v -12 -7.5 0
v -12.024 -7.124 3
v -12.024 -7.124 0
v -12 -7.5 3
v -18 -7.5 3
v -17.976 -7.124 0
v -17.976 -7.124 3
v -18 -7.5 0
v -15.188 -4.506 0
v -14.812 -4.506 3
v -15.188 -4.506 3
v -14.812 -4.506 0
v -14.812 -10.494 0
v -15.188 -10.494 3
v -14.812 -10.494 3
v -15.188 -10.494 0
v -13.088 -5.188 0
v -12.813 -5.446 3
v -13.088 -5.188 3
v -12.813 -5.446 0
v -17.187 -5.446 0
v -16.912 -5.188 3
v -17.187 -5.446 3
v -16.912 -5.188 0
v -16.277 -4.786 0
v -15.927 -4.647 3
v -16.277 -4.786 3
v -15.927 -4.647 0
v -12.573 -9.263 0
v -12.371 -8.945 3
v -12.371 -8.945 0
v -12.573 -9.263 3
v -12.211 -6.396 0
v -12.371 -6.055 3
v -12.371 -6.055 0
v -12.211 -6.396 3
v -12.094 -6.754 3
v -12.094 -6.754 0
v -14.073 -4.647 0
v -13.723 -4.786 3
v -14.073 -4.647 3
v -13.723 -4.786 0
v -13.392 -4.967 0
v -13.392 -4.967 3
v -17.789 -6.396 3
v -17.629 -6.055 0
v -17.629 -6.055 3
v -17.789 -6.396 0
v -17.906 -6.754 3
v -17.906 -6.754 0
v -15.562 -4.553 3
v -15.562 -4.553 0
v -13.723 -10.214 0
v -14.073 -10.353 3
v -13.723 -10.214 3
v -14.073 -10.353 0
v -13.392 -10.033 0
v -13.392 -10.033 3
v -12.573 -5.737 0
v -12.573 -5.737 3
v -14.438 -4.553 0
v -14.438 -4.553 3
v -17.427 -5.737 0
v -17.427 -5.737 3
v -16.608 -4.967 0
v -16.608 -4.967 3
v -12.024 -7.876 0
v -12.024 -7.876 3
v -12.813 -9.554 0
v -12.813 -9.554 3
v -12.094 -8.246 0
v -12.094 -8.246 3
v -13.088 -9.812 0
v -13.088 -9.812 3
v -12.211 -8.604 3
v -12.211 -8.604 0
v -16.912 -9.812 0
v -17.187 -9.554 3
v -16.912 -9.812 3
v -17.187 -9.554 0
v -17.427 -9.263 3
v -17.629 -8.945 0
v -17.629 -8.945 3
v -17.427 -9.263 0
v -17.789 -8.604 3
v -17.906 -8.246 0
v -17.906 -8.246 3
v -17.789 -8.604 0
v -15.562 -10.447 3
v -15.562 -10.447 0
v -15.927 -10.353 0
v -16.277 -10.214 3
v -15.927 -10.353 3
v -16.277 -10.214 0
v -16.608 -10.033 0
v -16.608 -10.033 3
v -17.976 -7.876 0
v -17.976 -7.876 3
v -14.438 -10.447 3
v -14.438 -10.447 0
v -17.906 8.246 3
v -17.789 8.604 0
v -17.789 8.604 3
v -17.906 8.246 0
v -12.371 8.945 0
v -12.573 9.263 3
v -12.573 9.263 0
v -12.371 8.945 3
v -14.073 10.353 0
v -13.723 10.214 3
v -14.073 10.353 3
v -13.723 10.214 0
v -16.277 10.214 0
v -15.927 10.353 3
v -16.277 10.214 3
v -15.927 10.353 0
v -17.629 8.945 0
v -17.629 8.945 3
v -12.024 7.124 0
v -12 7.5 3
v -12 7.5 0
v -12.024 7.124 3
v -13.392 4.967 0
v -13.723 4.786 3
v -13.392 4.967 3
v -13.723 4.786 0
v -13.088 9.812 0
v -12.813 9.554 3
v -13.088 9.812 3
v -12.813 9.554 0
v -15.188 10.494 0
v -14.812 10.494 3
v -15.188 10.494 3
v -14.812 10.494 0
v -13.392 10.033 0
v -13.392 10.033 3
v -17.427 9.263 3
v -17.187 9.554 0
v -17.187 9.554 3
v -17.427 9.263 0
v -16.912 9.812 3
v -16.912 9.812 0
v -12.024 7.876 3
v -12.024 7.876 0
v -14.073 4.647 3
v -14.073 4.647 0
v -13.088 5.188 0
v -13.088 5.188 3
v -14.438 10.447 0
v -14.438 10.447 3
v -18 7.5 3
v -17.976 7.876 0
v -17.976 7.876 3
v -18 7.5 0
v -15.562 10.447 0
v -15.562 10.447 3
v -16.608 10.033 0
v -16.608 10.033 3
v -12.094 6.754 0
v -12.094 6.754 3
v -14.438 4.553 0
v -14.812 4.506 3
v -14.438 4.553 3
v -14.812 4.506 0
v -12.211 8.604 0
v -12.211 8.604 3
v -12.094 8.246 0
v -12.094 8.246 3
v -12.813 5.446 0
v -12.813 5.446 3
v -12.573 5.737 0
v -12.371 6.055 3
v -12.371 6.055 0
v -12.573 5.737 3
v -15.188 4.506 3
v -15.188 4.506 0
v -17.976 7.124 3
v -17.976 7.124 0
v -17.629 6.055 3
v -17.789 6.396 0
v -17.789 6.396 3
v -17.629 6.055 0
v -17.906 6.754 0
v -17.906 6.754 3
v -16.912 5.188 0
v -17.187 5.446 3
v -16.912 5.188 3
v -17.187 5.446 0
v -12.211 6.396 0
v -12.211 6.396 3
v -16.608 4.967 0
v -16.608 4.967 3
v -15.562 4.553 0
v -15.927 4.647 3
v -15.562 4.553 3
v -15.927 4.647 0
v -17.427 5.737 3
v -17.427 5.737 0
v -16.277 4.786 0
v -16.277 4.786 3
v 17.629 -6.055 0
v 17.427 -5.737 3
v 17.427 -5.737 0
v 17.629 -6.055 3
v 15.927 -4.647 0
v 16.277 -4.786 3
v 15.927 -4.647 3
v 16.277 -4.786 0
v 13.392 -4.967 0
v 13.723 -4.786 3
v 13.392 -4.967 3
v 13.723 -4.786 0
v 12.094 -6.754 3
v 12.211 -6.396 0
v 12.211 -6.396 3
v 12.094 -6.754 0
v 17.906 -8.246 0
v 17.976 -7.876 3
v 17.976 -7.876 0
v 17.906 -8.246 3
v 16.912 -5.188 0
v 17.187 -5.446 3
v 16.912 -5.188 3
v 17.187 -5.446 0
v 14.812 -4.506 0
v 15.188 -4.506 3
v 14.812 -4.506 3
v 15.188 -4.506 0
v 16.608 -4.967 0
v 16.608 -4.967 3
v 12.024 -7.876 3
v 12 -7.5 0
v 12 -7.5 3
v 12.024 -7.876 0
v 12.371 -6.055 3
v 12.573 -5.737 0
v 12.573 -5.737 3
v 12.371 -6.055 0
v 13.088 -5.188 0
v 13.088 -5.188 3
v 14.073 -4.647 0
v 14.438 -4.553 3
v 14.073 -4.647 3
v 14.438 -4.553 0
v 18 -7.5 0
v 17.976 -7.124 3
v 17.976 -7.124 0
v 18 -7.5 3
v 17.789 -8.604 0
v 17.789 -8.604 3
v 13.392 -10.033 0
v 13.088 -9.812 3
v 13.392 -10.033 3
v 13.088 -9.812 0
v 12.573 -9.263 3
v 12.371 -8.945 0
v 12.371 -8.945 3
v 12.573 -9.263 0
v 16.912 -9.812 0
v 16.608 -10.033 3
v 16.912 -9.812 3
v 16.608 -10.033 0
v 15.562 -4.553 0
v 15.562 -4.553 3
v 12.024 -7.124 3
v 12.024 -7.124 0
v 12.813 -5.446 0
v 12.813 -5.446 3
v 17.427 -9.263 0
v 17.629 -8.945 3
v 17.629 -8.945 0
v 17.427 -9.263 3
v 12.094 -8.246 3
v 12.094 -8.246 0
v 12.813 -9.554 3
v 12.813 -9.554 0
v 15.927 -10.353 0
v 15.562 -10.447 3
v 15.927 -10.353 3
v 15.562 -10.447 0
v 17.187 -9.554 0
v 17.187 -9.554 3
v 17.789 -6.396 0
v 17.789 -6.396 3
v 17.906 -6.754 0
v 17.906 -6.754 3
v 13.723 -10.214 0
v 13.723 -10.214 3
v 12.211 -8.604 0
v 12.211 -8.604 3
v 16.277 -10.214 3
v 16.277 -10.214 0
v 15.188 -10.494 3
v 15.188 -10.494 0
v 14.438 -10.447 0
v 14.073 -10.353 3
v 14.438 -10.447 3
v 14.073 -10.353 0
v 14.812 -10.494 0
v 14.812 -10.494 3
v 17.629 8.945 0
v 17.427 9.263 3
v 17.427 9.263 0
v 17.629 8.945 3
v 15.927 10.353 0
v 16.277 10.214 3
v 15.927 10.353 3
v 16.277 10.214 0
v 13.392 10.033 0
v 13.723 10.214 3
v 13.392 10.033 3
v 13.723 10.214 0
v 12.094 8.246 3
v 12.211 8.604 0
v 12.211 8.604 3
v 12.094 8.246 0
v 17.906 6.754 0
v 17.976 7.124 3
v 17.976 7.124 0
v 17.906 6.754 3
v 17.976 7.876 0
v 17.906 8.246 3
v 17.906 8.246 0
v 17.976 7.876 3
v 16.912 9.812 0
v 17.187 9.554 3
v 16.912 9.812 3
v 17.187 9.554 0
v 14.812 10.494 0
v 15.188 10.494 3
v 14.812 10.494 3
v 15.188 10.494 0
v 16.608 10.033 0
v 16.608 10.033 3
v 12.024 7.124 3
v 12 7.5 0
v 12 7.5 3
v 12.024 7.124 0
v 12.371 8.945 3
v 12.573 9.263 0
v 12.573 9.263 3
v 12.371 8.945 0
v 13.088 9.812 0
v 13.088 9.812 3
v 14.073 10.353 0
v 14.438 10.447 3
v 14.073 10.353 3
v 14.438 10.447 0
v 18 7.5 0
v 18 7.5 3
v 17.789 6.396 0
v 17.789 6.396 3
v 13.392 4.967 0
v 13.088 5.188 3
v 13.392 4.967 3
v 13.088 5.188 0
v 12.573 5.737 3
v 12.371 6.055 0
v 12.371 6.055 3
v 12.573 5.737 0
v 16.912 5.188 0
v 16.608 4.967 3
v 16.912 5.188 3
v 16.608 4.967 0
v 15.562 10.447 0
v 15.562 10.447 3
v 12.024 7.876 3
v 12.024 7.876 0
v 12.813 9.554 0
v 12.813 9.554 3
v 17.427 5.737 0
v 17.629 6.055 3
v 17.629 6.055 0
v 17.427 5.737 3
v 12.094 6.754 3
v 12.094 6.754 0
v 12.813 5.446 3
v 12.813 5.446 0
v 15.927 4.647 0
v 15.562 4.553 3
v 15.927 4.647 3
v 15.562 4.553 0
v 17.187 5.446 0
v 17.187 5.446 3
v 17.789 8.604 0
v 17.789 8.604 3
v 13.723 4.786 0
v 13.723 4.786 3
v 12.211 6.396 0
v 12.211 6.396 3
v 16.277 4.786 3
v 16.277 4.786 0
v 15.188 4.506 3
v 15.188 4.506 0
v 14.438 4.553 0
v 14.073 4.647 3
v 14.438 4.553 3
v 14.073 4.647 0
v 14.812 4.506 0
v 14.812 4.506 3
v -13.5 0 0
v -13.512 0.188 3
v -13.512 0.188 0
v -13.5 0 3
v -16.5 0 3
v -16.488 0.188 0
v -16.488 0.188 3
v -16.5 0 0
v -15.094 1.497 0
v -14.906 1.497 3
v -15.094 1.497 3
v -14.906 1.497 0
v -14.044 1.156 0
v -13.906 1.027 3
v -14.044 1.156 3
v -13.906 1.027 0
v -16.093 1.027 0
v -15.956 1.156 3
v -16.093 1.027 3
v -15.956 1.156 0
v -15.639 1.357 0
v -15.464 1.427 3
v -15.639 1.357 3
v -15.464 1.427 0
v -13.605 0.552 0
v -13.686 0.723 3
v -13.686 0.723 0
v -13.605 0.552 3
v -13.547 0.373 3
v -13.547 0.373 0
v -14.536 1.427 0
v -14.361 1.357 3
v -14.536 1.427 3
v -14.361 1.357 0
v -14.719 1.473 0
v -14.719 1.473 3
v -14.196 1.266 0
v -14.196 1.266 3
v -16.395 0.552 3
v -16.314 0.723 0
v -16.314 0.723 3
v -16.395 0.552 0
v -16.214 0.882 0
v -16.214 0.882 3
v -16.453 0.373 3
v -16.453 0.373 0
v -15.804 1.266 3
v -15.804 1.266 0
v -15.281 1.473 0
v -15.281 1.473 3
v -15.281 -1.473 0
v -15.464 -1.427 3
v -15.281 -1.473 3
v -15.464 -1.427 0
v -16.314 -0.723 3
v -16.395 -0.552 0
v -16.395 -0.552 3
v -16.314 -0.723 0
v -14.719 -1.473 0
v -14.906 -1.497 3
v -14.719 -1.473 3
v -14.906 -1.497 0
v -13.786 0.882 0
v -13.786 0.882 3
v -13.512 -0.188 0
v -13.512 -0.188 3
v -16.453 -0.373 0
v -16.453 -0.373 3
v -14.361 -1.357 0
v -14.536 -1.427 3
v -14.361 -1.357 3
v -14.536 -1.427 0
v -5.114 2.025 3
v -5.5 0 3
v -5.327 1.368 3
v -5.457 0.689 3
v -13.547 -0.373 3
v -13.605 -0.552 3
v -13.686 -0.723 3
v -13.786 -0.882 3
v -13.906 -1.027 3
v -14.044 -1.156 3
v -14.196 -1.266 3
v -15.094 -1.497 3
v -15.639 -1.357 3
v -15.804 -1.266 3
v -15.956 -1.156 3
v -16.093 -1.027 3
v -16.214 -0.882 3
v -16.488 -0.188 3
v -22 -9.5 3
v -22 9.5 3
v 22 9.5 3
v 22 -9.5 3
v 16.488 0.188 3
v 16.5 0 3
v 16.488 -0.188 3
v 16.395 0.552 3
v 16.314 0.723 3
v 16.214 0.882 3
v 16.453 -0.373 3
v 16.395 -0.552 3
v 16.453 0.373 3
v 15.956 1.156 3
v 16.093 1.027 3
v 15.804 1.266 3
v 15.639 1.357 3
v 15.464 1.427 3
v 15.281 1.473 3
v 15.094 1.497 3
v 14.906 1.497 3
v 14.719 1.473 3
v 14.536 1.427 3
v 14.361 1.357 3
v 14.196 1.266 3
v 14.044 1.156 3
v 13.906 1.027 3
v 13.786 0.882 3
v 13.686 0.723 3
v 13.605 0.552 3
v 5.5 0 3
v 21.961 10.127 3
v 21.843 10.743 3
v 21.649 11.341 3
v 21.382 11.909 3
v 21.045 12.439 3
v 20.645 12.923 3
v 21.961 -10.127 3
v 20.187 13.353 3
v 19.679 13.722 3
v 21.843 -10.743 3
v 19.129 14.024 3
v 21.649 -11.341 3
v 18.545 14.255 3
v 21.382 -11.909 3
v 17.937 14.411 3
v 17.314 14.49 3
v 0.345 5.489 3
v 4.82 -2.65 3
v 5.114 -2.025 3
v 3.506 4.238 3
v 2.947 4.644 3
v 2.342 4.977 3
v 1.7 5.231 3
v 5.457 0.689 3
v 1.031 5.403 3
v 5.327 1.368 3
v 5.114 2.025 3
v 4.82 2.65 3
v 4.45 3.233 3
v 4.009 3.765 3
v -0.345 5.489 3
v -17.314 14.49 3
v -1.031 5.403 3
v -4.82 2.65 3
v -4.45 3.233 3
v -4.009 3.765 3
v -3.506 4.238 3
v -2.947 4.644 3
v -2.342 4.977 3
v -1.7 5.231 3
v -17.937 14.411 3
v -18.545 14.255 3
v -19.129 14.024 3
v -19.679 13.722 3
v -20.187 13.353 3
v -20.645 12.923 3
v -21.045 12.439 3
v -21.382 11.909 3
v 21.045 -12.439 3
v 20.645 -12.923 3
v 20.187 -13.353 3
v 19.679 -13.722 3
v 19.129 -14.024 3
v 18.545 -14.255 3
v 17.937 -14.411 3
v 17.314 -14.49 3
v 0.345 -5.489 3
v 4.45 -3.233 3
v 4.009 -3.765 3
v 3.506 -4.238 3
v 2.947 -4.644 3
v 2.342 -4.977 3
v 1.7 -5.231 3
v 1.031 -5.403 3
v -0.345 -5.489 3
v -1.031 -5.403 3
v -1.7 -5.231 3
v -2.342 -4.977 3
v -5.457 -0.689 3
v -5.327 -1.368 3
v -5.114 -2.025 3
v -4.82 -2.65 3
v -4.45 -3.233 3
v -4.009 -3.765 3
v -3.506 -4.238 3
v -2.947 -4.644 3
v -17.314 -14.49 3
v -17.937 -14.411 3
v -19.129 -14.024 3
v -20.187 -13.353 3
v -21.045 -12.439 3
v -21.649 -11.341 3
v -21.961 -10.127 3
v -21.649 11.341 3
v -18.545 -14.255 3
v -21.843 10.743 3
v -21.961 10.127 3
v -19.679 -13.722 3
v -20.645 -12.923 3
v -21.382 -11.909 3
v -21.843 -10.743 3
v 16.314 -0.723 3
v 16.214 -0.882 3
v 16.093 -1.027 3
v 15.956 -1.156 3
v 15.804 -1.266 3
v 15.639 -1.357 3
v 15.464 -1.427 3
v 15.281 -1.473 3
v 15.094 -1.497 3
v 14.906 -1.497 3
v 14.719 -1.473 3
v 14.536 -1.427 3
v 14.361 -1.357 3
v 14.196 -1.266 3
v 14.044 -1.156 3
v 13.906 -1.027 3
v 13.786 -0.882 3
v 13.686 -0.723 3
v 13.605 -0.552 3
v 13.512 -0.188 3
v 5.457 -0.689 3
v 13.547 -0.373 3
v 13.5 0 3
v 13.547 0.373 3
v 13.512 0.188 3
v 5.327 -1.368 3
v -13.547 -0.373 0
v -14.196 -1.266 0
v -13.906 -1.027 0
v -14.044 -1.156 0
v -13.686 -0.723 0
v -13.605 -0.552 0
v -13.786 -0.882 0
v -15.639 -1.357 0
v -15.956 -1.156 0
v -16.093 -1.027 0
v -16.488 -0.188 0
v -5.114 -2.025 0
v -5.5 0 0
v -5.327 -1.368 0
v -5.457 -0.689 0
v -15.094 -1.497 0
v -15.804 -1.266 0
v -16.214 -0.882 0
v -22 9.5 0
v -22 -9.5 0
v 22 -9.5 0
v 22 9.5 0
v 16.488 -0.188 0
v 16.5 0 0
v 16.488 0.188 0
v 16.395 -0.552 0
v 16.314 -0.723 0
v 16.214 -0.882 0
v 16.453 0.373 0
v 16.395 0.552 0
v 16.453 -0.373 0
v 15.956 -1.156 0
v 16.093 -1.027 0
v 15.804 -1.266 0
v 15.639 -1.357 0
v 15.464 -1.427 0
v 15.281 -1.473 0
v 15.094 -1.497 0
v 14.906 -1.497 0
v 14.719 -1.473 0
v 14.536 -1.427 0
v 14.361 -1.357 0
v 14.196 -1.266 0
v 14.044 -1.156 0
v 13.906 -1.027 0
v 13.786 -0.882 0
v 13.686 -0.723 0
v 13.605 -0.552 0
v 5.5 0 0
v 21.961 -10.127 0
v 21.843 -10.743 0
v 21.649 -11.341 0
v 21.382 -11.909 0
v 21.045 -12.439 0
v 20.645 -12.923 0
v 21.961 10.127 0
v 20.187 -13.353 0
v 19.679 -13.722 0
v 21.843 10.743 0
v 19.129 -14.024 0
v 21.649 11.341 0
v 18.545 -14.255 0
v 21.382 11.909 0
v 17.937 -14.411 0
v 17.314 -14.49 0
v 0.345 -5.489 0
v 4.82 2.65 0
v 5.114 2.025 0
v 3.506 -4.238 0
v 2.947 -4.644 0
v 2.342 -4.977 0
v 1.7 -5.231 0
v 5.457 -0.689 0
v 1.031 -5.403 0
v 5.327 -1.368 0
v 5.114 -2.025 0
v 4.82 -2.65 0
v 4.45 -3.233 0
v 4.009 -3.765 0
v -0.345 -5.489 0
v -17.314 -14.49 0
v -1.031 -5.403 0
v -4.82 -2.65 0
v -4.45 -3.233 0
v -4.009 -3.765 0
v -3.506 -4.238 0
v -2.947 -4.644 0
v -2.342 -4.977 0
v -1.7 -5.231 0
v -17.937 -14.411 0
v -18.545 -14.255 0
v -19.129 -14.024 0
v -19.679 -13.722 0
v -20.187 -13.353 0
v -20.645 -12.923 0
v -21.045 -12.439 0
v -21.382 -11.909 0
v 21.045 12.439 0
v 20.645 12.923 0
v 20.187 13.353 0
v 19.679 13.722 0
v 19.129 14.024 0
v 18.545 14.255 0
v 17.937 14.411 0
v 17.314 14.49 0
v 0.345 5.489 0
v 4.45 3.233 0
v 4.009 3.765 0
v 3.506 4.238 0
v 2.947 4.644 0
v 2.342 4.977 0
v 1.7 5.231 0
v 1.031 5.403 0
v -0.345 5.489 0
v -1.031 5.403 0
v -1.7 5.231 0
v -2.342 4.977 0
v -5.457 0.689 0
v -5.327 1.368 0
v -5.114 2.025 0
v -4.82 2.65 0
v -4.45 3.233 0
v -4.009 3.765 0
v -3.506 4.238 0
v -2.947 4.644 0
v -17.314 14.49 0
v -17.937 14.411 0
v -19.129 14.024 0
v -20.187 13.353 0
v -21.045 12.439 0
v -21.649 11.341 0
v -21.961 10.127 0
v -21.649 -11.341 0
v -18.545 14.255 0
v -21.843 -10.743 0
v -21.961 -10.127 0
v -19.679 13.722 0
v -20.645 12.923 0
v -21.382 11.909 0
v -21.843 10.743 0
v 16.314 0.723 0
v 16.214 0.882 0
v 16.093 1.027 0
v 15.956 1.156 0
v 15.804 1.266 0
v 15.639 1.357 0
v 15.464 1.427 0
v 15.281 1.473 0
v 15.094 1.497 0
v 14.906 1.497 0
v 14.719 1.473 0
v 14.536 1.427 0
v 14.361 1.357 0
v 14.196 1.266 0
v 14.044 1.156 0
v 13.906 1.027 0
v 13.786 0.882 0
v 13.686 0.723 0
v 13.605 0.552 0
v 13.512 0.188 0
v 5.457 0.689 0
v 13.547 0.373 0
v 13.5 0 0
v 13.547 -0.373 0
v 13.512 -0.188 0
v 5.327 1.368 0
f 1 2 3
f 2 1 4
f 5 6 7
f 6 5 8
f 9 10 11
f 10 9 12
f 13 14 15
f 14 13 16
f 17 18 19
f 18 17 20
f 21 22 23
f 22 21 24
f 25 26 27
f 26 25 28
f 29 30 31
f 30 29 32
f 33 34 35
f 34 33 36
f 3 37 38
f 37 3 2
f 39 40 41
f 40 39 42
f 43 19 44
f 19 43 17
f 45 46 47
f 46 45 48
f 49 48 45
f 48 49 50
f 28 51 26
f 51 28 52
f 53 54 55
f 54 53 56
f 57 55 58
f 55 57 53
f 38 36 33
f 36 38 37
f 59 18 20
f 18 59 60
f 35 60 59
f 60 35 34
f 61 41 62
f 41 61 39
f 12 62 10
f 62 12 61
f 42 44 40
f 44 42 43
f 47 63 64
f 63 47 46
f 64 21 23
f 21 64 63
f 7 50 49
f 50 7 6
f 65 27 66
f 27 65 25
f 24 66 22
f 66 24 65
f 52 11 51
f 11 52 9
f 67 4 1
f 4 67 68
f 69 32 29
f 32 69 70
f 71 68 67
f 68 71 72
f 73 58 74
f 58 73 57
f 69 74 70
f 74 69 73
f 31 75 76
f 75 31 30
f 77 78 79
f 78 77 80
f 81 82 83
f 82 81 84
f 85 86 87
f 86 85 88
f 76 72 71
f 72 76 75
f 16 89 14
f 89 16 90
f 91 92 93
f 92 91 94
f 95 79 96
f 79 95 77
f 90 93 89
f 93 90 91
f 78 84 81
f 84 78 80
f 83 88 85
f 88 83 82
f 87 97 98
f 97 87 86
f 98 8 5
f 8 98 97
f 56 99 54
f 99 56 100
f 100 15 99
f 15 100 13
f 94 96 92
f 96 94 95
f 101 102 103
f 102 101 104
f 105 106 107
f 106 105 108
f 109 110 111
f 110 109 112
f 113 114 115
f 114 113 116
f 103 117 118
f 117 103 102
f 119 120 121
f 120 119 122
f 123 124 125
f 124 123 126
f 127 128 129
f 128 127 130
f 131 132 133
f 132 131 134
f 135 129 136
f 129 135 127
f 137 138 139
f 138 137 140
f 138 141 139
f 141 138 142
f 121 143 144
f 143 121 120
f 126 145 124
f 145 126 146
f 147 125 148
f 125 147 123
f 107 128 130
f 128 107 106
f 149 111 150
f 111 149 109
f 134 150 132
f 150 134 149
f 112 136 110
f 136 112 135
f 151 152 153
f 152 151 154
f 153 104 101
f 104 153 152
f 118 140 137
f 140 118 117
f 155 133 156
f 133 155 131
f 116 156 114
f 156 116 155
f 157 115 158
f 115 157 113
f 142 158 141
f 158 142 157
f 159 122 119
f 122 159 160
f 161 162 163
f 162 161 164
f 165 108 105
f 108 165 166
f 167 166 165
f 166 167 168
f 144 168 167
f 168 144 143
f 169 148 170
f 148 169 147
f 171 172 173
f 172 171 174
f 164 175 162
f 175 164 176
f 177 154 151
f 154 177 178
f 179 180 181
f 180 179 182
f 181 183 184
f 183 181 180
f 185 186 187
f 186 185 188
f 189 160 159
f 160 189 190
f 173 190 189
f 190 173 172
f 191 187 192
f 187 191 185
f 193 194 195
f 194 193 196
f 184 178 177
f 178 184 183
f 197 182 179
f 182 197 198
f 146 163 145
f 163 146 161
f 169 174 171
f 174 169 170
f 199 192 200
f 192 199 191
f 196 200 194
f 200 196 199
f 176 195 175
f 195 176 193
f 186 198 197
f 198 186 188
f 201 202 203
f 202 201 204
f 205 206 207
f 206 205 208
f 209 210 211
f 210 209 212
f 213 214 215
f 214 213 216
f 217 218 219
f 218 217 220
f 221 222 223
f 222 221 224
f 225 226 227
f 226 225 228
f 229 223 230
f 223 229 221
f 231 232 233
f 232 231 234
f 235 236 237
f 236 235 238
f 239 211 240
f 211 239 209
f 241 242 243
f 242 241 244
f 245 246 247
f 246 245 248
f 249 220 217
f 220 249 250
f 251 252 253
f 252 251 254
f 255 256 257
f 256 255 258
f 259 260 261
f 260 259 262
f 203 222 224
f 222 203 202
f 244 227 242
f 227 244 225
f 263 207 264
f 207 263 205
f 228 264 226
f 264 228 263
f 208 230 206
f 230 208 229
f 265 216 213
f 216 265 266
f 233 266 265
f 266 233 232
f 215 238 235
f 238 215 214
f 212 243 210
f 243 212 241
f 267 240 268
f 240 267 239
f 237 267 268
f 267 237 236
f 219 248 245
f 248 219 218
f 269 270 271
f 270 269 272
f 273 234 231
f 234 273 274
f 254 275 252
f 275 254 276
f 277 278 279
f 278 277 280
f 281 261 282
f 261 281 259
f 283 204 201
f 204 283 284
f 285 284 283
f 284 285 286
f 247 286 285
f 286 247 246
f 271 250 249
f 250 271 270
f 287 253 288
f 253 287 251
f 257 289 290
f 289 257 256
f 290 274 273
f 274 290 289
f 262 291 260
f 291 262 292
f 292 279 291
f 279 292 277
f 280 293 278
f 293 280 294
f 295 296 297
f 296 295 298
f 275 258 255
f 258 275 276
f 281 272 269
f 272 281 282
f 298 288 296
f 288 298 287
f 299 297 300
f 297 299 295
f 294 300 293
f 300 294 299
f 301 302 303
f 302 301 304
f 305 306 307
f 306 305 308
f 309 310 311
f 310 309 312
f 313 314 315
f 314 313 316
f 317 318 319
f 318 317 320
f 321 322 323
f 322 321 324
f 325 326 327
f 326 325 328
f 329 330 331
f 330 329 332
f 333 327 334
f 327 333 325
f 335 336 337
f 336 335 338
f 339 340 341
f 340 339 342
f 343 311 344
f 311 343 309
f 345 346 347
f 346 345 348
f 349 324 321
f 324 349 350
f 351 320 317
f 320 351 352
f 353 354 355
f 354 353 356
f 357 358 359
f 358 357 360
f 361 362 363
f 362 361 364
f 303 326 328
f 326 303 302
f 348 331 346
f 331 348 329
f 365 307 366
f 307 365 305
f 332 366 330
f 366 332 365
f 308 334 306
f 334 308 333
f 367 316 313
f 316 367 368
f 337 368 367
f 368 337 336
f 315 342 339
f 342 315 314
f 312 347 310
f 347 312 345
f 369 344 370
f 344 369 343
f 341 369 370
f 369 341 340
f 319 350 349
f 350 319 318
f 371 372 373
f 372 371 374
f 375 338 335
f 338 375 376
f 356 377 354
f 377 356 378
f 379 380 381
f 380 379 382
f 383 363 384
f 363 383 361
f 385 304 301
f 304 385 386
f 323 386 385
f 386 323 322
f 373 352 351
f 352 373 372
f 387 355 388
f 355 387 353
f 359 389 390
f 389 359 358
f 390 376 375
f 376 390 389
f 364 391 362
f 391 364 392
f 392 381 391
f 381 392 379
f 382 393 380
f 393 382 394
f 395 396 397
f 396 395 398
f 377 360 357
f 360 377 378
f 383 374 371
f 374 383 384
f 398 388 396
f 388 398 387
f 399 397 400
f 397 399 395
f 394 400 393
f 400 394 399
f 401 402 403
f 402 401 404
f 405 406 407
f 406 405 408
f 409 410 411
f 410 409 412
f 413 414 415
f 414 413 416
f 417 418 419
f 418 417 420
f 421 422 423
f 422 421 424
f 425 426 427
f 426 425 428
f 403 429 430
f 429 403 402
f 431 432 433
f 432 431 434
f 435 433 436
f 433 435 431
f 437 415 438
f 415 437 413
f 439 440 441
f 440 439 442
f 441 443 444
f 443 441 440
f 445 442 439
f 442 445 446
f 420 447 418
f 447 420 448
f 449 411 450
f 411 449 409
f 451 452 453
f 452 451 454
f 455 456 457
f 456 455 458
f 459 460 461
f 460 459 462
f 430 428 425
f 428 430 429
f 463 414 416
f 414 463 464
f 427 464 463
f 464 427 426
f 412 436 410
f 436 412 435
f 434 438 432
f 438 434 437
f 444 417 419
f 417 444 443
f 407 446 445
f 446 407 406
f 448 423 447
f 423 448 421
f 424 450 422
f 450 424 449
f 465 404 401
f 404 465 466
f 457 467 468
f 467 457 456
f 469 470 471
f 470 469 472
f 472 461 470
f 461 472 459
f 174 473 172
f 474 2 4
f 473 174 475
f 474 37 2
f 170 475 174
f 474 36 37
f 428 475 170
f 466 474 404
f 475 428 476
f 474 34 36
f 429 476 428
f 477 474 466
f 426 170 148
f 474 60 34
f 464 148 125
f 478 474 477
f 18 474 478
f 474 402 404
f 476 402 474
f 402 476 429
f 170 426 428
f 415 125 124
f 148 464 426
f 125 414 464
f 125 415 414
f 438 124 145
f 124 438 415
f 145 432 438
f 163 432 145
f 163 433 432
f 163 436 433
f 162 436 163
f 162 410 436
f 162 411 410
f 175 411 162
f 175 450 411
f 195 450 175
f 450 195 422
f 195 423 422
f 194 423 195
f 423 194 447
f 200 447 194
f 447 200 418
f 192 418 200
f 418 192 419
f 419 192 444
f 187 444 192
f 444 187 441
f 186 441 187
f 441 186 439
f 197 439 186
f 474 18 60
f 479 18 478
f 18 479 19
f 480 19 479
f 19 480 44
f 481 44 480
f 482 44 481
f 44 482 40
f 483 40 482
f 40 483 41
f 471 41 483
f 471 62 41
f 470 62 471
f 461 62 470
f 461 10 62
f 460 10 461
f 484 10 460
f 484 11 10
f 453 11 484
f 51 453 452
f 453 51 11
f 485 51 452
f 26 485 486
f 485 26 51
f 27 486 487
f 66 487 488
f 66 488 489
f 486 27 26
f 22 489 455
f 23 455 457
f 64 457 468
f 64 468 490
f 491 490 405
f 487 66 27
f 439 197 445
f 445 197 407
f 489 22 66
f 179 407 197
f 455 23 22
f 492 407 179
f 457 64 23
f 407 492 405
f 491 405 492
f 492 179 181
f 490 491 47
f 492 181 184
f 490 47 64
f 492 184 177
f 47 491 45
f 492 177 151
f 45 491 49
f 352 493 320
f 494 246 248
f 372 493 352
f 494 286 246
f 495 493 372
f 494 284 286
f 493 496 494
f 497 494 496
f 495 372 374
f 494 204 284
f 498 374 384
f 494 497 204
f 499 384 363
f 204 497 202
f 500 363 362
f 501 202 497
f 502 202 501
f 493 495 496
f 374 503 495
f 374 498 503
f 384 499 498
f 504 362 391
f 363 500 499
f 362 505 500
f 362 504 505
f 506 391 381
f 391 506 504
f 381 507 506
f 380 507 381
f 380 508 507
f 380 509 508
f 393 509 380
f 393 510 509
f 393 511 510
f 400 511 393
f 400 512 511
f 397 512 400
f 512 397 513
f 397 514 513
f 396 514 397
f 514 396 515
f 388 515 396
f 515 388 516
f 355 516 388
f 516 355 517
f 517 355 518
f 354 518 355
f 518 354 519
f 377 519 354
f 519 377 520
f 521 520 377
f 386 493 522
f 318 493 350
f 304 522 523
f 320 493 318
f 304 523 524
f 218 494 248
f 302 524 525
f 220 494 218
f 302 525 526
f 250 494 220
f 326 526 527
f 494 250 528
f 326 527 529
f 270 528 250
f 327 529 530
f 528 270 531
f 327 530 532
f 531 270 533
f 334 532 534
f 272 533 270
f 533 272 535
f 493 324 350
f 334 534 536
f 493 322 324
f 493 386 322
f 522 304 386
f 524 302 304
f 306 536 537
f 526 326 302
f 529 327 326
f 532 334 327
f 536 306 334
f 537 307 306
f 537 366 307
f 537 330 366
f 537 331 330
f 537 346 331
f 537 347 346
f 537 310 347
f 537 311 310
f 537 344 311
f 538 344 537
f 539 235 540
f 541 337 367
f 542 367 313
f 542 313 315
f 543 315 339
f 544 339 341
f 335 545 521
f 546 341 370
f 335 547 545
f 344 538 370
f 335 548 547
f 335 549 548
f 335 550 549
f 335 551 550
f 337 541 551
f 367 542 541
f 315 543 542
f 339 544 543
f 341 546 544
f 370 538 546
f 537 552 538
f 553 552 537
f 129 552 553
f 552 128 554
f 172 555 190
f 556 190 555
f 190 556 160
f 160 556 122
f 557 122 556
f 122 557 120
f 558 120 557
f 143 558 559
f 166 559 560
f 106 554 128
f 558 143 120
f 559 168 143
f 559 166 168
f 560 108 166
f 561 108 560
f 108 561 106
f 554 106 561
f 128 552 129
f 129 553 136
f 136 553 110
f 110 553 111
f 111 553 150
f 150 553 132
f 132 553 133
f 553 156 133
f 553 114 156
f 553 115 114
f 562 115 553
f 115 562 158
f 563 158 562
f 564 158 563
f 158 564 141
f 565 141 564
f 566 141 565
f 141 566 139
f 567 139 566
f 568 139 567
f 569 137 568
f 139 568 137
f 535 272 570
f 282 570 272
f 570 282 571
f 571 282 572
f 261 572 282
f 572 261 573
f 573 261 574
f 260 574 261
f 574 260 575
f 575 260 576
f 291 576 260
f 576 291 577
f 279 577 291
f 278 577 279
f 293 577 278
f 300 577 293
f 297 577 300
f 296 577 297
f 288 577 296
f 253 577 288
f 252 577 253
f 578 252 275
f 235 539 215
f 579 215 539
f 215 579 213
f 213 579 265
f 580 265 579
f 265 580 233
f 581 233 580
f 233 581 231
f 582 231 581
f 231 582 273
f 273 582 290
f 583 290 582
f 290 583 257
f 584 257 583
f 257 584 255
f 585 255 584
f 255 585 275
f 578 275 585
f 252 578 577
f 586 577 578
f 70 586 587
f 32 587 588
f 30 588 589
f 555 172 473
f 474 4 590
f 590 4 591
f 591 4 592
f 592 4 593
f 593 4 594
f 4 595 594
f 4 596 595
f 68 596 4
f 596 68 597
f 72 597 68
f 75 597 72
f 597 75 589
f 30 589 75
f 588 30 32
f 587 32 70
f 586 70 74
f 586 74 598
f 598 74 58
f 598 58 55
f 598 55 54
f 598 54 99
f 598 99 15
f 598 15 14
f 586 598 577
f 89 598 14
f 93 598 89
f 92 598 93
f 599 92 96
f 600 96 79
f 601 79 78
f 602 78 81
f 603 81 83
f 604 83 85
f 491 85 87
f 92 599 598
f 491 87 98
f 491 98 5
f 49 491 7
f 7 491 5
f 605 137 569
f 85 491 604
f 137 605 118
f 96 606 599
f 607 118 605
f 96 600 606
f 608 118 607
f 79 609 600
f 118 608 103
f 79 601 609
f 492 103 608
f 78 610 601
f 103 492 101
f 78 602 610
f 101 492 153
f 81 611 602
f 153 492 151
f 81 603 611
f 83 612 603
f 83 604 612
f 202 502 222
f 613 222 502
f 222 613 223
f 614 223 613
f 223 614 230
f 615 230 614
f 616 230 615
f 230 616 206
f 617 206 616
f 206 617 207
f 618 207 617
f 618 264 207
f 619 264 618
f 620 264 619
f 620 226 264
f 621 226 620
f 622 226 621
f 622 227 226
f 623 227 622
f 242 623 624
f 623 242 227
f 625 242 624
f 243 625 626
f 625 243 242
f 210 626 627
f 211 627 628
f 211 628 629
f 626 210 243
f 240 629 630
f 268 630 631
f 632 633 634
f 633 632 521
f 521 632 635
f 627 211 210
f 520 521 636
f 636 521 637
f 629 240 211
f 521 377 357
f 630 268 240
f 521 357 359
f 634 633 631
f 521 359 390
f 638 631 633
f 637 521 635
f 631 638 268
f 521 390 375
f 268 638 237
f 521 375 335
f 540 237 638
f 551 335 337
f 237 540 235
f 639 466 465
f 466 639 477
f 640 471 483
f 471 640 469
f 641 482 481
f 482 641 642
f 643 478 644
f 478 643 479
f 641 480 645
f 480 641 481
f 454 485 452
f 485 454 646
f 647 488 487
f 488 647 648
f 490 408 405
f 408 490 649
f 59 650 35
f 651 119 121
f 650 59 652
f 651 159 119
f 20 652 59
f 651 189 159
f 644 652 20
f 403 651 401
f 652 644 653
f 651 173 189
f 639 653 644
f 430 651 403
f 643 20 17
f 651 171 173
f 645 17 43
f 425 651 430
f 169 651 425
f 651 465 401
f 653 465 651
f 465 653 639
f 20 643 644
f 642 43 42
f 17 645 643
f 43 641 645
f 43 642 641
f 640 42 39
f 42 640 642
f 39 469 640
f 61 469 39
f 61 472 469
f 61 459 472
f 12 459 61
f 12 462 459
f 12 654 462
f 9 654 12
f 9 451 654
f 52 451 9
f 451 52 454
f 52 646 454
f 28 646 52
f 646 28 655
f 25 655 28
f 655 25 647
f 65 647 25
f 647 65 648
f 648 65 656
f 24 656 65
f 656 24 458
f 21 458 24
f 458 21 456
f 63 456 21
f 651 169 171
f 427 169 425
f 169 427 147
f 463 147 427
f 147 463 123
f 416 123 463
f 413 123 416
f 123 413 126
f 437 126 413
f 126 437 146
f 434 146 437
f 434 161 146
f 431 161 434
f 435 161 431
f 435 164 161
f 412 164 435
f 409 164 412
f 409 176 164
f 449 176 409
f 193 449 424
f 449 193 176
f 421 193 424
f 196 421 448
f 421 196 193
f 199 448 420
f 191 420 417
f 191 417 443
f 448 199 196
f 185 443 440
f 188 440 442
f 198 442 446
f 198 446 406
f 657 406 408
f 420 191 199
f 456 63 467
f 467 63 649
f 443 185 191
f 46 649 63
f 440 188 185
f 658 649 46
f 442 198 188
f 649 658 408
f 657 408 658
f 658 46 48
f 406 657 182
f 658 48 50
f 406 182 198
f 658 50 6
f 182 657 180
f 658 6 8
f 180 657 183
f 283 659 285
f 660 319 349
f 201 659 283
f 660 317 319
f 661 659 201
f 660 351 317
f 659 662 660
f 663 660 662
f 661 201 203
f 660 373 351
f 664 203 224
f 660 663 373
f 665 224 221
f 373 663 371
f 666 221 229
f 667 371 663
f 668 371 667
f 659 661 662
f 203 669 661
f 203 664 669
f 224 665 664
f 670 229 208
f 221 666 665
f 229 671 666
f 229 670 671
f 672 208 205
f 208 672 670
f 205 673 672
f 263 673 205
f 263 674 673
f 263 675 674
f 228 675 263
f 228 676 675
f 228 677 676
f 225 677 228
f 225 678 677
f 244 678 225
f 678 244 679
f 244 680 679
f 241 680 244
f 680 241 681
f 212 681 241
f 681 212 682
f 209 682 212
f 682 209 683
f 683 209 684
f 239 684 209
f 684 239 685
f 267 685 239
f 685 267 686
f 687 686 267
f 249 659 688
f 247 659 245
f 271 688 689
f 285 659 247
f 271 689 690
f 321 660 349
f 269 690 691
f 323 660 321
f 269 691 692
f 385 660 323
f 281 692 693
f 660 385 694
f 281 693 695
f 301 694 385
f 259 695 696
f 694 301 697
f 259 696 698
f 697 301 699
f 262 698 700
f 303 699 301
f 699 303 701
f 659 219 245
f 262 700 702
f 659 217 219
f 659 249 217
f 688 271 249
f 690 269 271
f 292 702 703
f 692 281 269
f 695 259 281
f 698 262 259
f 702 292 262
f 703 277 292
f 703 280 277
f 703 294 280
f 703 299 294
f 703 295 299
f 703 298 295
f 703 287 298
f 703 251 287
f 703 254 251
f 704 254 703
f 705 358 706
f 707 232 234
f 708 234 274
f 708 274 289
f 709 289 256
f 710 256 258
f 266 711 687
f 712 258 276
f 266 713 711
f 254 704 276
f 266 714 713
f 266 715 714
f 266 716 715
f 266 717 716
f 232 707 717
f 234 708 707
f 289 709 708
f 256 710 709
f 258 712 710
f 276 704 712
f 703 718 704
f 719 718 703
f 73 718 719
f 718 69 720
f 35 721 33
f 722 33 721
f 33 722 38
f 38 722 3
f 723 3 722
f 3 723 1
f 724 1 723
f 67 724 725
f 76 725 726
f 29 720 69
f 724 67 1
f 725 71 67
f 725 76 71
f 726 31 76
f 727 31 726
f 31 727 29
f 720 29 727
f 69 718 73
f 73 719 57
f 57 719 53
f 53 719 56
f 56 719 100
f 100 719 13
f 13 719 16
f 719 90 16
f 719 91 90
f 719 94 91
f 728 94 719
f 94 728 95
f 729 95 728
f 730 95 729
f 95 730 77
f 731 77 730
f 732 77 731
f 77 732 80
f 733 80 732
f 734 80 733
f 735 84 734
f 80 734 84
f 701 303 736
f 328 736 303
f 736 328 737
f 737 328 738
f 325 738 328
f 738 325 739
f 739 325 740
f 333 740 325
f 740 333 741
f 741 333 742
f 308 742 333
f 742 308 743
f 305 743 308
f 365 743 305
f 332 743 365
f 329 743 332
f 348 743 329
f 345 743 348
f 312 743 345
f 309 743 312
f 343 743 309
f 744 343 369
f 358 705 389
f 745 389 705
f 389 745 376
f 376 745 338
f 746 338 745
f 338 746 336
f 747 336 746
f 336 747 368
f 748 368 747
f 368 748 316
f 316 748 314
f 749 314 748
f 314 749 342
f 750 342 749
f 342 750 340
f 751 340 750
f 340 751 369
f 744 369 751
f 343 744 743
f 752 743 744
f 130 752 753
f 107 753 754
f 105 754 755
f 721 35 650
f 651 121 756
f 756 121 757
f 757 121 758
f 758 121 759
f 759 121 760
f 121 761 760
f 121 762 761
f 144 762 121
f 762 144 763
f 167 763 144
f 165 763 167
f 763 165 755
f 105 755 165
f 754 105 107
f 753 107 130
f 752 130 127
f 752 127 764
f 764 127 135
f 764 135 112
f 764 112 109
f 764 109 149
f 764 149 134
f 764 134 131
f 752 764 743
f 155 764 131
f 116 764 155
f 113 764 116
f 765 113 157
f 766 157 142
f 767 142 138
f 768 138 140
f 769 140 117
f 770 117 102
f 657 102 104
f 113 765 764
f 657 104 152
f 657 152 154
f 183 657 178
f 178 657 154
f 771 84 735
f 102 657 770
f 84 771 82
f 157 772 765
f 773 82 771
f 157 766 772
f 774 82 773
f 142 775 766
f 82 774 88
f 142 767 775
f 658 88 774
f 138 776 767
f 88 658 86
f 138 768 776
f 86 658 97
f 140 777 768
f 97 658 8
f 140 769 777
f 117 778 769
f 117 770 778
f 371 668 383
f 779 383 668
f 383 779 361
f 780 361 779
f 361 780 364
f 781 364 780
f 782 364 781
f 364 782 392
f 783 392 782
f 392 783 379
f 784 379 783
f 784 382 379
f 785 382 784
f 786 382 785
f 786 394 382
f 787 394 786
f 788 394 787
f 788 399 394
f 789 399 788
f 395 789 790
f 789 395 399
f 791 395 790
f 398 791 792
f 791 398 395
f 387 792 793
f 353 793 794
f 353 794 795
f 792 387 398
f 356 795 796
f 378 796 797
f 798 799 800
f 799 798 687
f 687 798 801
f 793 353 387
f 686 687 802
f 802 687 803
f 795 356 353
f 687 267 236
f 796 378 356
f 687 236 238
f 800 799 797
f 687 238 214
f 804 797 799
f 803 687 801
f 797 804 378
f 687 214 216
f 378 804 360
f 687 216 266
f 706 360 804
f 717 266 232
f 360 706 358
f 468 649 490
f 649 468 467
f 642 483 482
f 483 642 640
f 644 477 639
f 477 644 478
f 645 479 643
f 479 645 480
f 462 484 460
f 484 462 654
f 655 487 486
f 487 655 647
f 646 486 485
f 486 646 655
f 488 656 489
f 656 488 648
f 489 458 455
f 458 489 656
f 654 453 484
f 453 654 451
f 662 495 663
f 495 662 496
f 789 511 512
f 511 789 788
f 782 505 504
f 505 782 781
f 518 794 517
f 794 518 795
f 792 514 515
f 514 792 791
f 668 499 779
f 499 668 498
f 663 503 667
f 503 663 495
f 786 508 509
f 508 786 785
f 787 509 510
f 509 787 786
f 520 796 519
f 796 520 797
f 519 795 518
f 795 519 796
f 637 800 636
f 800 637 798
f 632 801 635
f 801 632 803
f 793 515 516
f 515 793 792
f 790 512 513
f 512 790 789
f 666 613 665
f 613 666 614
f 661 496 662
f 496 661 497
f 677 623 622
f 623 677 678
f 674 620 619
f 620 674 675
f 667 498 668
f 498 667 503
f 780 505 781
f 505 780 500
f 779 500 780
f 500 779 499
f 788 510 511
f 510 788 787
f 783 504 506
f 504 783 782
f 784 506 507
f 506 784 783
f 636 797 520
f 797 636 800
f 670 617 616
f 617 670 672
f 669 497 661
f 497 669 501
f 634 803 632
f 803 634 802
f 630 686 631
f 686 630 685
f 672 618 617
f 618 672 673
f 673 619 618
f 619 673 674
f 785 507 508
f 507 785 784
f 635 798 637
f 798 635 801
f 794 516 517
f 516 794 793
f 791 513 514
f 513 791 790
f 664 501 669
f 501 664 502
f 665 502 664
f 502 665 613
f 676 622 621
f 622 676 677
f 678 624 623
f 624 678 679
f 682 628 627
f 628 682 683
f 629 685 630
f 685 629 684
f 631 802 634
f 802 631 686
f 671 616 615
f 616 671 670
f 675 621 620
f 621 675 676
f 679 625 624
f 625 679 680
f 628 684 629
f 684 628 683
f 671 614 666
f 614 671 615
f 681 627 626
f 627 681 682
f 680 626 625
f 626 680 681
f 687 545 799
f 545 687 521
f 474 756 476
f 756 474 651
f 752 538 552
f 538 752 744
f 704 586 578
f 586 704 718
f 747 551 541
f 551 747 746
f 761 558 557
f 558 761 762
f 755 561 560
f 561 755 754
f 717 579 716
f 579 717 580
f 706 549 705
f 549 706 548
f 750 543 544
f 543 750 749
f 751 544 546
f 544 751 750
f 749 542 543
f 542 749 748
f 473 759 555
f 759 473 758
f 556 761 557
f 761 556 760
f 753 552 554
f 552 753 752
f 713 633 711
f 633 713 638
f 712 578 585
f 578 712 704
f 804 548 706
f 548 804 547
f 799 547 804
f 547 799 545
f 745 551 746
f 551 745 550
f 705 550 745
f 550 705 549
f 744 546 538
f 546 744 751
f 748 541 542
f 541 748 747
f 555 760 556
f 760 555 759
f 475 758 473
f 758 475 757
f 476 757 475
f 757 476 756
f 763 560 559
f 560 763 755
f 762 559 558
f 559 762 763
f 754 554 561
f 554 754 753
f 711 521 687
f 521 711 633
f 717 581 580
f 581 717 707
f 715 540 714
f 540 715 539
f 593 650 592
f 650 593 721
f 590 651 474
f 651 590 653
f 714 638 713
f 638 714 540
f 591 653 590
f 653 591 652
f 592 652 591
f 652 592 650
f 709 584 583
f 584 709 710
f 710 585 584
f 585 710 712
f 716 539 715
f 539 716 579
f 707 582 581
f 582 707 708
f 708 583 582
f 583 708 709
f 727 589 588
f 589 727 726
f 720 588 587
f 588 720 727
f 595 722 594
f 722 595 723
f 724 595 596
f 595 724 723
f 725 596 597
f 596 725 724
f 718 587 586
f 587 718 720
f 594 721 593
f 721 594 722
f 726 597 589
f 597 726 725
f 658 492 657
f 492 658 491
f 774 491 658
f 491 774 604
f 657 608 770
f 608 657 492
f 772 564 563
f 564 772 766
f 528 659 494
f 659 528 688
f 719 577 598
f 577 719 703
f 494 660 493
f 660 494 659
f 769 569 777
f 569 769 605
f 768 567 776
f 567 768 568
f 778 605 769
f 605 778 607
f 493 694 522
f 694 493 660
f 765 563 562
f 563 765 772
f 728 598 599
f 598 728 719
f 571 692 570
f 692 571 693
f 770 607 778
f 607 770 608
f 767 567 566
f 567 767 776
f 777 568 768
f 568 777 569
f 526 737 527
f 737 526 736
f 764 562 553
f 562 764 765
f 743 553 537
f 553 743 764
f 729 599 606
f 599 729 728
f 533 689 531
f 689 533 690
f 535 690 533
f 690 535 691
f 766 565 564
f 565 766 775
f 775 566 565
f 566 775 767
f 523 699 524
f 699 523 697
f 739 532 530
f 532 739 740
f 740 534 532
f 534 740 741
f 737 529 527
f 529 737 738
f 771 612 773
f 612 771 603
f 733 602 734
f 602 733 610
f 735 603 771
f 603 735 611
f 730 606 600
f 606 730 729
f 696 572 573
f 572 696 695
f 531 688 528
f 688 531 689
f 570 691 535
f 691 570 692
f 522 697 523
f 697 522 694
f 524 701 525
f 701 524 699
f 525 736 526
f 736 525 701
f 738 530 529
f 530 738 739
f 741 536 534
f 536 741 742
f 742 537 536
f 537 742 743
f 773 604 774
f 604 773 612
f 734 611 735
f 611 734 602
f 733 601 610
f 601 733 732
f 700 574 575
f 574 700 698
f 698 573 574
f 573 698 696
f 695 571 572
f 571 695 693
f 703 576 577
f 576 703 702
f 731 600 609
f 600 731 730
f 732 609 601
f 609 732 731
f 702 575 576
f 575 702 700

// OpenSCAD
$fn = 50;


difference() {
	union() {
		hull() {
			translate(v = [-17.0000000000, 9.5000000000, 0]) {
				cylinder(h = 3, r = 5);
			}
			translate(v = [17.0000000000, 9.5000000000, 0]) {
				cylinder(h = 3, r = 5);
			}
			translate(v = [-17.0000000000, -9.5000000000, 0]) {
				cylinder(h = 3, r = 5);
			}
			translate(v = [17.0000000000, -9.5000000000, 0]) {
				cylinder(h = 3, r = 5);
			}
		}
	}
	union() {
		#translate(v = [-15.0000000000, -7.5000000000, 0]) {
			cylinder(h = 3, r = 3.0000000000);
		}
		#translate(v = [-15.0000000000, 7.5000000000, 0]) {
			cylinder(h = 3, r = 3.0000000000);
		}
		#translate(v = [15.0000000000, -7.5000000000, 0]) {
			cylinder(h = 3, r = 3.0000000000);
		}
		#translate(v = [15.0000000000, 7.5000000000, 0]) {
			cylinder(h = 3, r = 3.0000000000);
		}
		#translate(v = [-15.0000000000, -7.5000000000, -100.0000000000]) {
			cylinder(h = 200, r = 3.0000000000);
		}
		#translate(v = [-15.0000000000, 7.5000000000, -100.0000000000]) {
			cylinder(h = 200, r = 3.0000000000);
		}
		#translate(v = [15.0000000000, -7.5000000000, -100.0000000000]) {
			cylinder(h = 200, r = 3.0000000000);
		}
		#translate(v = [15.0000000000, 7.5000000000, -100.0000000000]) {
			cylinder(h = 200, r = 3.0000000000);
		}
		#translate(v = [-15.0000000000, -7.5000000000, 0]) {
			cylinder(h = 3, r = 1.5000000000);
		}
		#translate(v = [-15.0000000000, 0.0000000000, 0]) {
			cylinder(h = 3, r = 1.5000000000);
		}
		#translate(v = [-15.0000000000, 7.5000000000, 0]) {
			cylinder(h = 3, r = 1.5000000000);
		}
		#translate(v = [15.0000000000, -7.5000000000, 0]) {
			cylinder(h = 3, r = 1.5000000000);
		}
		#translate(v = [15.0000000000, 0.0000000000, 0]) {
			cylinder(h = 3, r = 1.5000000000);
		}
		#translate(v = [15.0000000000, 7.5000000000, 0]) {
			cylinder(h = 3, r = 1.5000000000);
		}
		#translate(v = [-15.0000000000, -7.5000000000, 0]) {
			cylinder(h = 3, r = 1.5000000000);
		}
		#translate(v = [-15.0000000000, 0.0000000000, 0]) {
			cylinder(h = 3, r = 1.5000000000);
		}
		#translate(v = [-15.0000000000, 7.5000000000, 0]) {
			cylinder(h = 3, r = 1.5000000000);
		}
		#translate(v = [15.0000000000, -7.5000000000, 0]) {
			cylinder(h = 3, r = 1.5000000000);
		}
		#translate(v = [15.0000000000, 0.0000000000, 0]) {
			cylinder(h = 3, r = 1.5000000000);
		}
		#translate(v = [15.0000000000, 7.5000000000, 0]) {
			cylinder(h = 3, r = 1.5000000000);
		}
		#translate(v = [-15.0000000000, -7.5000000000, 0]) {
			cylinder(h = 3, r = 1.5000000000);
		}
		#translate(v = [-15.0000000000, 0.0000000000, 0]) {
			cylinder(h = 3, r = 1.5000000000);
		}
		#translate(v = [-15.0000000000, 7.5000000000, 0]) {
			cylinder(h = 3, r = 1.5000000000);
		}
		#translate(v = [15.0000000000, -7.5000000000, 0]) {
			cylinder(h = 3, r = 1.5000000000);
		}
		#translate(v = [15.0000000000, 0.0000000000, 0]) {
			cylinder(h = 3, r = 1.5000000000);
		}
		#translate(v = [15.0000000000, 7.5000000000, 0]) {
			cylinder(h = 3, r = 1.5000000000);
		}
		#cylinder(h = 3, r = 5.5000000000);
	}
}
